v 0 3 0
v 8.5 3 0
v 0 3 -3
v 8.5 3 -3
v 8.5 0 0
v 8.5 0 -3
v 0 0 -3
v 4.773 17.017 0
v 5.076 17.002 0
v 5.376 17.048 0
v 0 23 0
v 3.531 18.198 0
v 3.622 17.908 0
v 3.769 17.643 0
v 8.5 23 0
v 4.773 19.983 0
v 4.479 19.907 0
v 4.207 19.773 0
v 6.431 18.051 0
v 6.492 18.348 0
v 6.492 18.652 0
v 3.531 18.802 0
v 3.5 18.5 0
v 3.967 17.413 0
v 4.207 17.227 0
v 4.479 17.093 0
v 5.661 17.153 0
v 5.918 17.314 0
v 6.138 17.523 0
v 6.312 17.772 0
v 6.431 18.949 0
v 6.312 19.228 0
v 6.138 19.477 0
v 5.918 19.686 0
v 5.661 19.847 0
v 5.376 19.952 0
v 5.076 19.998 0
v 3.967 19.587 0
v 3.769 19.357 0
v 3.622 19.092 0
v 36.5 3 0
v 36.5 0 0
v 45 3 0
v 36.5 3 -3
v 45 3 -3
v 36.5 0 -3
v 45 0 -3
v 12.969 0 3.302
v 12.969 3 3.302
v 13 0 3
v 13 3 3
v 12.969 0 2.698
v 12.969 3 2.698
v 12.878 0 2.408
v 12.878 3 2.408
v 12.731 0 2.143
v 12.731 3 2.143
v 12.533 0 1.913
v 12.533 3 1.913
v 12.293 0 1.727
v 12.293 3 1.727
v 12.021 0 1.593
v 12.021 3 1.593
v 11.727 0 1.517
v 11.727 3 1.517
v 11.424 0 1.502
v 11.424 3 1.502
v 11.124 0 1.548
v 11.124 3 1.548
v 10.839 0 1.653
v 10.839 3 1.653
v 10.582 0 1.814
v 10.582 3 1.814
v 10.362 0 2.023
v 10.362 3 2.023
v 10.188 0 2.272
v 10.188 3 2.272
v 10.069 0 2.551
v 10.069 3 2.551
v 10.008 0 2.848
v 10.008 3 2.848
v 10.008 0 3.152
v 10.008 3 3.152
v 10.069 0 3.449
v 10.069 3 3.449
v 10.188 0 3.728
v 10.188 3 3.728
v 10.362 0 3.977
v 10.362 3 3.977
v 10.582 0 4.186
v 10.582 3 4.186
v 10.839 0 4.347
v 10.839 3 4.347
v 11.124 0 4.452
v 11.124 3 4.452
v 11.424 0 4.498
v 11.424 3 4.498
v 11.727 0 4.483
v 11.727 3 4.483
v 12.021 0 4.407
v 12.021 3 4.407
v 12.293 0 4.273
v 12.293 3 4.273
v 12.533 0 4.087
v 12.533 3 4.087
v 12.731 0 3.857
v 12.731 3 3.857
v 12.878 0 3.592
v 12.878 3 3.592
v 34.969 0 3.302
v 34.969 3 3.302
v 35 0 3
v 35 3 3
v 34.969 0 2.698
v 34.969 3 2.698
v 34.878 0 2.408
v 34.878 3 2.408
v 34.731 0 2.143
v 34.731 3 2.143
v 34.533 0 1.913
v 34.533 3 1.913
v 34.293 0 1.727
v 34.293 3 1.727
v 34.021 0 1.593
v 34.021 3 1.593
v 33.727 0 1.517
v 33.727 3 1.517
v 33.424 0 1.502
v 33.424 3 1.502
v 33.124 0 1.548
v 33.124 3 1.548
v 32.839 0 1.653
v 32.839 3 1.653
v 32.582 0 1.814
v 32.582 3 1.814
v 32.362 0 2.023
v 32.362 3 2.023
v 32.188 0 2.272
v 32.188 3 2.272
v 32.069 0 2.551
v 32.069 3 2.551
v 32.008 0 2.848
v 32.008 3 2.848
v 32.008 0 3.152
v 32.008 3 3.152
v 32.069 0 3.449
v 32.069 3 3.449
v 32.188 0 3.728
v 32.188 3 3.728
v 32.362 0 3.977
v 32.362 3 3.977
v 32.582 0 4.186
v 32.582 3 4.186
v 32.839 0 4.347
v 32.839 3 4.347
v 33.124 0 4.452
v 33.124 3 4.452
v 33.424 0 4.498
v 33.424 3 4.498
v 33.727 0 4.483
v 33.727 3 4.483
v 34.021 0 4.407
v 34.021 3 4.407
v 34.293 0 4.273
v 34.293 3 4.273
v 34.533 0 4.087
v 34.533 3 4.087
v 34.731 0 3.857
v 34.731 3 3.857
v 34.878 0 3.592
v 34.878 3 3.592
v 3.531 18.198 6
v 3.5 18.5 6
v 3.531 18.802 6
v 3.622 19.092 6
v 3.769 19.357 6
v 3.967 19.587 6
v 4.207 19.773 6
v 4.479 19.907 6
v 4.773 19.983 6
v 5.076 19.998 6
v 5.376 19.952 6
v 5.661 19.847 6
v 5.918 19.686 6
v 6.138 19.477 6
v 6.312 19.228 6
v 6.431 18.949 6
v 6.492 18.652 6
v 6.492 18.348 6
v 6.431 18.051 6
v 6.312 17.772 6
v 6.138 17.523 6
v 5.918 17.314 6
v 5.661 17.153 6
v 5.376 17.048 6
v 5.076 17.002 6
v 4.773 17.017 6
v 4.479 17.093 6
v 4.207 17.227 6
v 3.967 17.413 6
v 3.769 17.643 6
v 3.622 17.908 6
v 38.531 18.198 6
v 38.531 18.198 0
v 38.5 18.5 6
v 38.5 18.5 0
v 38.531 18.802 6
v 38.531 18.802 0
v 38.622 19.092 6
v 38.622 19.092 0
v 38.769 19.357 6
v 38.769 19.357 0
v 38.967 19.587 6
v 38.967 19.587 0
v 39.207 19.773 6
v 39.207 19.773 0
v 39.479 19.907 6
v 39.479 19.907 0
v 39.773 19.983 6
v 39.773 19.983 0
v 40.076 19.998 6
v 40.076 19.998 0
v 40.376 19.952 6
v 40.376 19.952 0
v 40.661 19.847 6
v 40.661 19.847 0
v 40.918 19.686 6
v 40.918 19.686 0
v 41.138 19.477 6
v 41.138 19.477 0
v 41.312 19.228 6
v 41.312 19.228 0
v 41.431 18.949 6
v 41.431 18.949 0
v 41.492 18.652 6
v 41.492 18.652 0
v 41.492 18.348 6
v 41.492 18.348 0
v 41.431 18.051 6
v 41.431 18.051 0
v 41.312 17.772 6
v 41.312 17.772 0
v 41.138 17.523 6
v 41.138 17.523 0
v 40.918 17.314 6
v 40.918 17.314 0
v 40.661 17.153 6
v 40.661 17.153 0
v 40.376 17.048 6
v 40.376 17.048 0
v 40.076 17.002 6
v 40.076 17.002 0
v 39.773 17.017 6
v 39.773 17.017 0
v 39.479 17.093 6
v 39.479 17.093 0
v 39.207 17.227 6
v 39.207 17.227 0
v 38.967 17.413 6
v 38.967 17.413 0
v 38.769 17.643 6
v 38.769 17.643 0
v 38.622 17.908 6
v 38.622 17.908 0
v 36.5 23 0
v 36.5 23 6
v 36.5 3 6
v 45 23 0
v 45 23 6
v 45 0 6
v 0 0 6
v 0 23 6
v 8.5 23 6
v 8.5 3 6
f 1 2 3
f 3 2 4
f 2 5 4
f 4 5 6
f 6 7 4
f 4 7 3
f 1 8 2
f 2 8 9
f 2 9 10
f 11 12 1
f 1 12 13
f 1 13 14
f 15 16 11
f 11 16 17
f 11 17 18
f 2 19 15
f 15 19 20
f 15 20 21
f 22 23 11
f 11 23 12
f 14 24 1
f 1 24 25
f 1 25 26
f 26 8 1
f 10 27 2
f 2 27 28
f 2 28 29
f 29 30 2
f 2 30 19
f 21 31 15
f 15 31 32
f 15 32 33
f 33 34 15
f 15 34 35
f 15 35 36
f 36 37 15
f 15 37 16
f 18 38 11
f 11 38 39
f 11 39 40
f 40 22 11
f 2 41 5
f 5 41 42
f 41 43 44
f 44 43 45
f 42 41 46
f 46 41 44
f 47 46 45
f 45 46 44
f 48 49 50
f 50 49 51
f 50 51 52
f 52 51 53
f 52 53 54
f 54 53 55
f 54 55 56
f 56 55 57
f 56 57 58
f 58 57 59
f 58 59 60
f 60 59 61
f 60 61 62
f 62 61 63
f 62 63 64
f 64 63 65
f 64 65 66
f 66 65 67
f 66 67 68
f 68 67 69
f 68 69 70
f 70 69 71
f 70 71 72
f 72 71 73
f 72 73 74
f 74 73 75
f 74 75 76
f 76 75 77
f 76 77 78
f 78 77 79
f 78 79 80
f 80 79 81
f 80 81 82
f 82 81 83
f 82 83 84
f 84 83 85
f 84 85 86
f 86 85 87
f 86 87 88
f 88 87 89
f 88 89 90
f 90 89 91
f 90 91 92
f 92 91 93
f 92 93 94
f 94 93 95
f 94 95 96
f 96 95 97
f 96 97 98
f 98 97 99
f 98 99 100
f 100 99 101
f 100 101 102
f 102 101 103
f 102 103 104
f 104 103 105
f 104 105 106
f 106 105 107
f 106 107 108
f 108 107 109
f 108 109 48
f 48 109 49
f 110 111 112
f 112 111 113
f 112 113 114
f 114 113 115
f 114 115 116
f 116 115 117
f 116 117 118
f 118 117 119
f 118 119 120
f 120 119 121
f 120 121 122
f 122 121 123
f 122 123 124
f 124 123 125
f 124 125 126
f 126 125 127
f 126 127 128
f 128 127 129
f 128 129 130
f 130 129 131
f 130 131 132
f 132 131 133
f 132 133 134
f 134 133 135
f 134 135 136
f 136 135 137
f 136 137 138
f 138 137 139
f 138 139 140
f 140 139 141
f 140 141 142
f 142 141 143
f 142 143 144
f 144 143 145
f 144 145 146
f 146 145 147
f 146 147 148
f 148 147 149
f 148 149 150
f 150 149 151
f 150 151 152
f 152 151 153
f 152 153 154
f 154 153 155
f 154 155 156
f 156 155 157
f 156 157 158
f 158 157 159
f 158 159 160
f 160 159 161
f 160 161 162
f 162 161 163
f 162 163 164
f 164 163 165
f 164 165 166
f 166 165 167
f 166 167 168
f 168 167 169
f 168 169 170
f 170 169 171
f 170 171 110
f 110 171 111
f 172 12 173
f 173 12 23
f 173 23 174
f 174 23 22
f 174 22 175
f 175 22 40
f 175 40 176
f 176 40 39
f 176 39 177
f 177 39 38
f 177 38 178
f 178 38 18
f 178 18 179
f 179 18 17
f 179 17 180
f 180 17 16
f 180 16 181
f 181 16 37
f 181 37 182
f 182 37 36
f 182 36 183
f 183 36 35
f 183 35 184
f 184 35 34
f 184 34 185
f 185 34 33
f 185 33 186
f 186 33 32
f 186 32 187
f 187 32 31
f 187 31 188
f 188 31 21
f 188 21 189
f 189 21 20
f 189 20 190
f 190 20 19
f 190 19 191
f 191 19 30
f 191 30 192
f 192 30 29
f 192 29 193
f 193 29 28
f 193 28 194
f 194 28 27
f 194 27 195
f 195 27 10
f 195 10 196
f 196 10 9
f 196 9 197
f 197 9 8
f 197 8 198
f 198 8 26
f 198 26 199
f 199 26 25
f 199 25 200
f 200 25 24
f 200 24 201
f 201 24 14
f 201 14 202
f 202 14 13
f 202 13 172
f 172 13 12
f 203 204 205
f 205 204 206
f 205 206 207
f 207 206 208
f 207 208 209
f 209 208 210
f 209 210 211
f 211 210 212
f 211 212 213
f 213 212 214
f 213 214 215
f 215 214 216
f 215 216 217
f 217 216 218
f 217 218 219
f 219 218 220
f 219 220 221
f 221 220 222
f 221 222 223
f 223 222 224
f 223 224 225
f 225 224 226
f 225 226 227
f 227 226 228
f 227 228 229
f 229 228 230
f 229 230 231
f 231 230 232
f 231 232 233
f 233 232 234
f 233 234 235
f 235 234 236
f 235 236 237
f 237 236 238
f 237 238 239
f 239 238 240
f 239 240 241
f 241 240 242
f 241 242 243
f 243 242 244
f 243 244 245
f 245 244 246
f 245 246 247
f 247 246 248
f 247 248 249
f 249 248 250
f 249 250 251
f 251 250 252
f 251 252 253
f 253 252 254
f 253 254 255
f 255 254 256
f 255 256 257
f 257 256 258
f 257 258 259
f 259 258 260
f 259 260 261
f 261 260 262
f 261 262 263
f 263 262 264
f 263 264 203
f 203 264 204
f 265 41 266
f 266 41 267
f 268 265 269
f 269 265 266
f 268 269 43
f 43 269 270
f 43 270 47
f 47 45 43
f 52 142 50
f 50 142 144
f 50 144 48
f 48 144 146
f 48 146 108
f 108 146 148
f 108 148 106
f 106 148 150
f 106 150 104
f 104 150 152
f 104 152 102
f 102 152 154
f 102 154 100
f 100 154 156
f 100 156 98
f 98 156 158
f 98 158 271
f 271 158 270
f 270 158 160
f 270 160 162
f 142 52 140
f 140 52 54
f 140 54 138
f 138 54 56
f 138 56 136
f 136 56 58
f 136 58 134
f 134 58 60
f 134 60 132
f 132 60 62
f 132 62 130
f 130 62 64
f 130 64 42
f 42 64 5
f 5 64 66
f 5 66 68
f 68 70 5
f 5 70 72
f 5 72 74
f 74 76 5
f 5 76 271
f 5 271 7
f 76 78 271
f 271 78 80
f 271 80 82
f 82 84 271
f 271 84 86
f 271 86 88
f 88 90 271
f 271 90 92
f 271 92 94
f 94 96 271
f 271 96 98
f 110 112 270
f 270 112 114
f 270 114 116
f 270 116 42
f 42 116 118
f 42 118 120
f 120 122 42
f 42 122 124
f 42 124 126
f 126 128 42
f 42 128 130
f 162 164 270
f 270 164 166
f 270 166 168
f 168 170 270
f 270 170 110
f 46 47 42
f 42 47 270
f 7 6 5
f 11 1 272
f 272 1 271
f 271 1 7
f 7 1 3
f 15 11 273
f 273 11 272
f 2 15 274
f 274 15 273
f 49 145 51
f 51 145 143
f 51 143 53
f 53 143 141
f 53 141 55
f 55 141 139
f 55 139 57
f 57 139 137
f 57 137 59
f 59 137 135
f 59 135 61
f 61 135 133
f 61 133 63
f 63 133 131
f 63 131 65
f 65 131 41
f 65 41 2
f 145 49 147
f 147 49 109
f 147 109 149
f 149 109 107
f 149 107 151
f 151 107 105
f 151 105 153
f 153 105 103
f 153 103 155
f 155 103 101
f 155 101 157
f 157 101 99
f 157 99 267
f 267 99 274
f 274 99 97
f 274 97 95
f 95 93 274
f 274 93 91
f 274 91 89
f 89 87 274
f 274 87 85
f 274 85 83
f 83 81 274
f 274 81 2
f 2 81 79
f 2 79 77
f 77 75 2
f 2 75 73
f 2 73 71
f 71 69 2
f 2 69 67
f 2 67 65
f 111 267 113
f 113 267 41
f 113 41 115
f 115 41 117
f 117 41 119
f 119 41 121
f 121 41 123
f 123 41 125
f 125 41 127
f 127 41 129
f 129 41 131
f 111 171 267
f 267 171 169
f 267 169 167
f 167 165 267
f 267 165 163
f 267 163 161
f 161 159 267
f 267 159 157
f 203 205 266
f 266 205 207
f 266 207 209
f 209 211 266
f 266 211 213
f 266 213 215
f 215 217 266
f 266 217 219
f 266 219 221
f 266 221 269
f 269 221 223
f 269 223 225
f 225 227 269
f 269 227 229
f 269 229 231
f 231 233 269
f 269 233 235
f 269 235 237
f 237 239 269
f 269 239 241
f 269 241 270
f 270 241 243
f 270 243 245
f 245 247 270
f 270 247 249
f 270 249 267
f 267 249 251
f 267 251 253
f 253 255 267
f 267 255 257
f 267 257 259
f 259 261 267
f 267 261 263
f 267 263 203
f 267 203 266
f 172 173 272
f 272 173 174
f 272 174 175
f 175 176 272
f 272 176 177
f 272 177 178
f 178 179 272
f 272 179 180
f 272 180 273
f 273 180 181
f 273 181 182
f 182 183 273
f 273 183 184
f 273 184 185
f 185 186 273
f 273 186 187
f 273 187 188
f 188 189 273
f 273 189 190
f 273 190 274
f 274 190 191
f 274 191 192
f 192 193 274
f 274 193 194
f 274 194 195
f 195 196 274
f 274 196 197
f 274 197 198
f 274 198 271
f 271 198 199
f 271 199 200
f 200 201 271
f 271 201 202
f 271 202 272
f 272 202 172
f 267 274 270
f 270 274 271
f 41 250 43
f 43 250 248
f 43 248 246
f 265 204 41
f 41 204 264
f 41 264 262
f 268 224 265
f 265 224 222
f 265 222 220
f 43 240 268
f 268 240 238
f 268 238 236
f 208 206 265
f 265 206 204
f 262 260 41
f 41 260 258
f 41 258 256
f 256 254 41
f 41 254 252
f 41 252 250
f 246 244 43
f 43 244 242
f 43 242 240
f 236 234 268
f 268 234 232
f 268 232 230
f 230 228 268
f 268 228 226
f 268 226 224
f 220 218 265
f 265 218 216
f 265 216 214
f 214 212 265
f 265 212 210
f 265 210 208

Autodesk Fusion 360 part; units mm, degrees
sketch "Sketch principal" plane through (0, 0, 0) normal (0, 0, 1) x (1, 0, 0)
  line L0 (45, 0) -> (45, 23)
  line L1 (45, 23) -> (36.5, 23)
  line L2 (36.5, 0) -> (45, 0)
  line L3 (36.5, 23) -> (36.5, 0)
  circle A0 centre (40, 18.5) radius 1.5
  line L4 (8.5, 23) -> (0, 23)
  line L5 (0, 0) -> (8.5, 0)
  line L6 (0, 23) -> (0, 0)
  line L7 (8.5, 0) -> (8.5, 23)
  circle A1 centre (5, 18.5) radius 1.5
  line L8 (8.5, 0) -> (36.5, 0)
  line L9 (36.5, 0) -> (36.5, 3)
  line L10 (36.5, 3) -> (8.5, 3)
  line L11 (8.5, 3) -> (8.5, 0)
  line L12 (8.5, 3) -> (0, 3)
  line L13 (0, 3) -> (0, 0)
  line L14 (0, 0) -> (8.5, 0)
  line L15 (8.5, 0) -> (8.5, 3)
  line L16 (36.5, 3) -> (45, 3)
  line L17 (45, 3) -> (45, 0)
  line L18 (45, 0) -> (36.5, 0)
  line L19 (36.5, 0) -> (36.5, 3)
  point P0 (36.5, 0)
  dimension "d15" = 23
  dimension "d16" = 8.5
  dimension "d17" = 3
  dimension "d18" = 4.5
  dimension "d20" = 23
  dimension "d21" = 8.5
  dimension "d22" = 3
  dimension "d23" = 4.5
  dimension "d24" = 3.5
  dimension "d25" = 28
  dimension "d26" = 3.5
  dimension "d28" = 3
  dimension "d29" = 28
extrude "Extrude1" add sketch "Sketch principal" along normal blind 6
ref_plane "WorkPlane1" through (22.5, 13, 3) normal (1, 0, 0) x (0, 1, 0)
ref_plane "WorkPlane2" through (22.5, 11.5, 3) normal (0, 0, -1) x (-1, 0, 0)
sketch "Sketch4" plane through (0, 3, 0) normal (0, 1, 0) x (-1, 0, 0)
  line L0 (-36.5, 0) -> (-8.5, 0)
  line L1 (-8.5, 0) -> (-8.5, 6)
  line L2 (-8.5, 6) -> (-36.5, 6)
  line L3 (-36.5, 6) -> (-36.5, 0)
  circle A0 centre (-11.5, 3) radius 1.5
  line L4 (-22.5, 0) -> (-22.5, 6)
  circle A1 centre (-33.5, 3) radius 1.5
  dimension "d32" = 3
  dimension "d35" = 3
extrude "Extrude2" cut sketch "Sketch4" against normal blind 11 contours A0 | A1
extrude "Extrude3" add sketch "Sketch principal" against normal blind 3 contours L0 L2 L3 L9 L16 L17 L18 L19 | L5 L6 L7 L11 L12 L13 L14 L15
